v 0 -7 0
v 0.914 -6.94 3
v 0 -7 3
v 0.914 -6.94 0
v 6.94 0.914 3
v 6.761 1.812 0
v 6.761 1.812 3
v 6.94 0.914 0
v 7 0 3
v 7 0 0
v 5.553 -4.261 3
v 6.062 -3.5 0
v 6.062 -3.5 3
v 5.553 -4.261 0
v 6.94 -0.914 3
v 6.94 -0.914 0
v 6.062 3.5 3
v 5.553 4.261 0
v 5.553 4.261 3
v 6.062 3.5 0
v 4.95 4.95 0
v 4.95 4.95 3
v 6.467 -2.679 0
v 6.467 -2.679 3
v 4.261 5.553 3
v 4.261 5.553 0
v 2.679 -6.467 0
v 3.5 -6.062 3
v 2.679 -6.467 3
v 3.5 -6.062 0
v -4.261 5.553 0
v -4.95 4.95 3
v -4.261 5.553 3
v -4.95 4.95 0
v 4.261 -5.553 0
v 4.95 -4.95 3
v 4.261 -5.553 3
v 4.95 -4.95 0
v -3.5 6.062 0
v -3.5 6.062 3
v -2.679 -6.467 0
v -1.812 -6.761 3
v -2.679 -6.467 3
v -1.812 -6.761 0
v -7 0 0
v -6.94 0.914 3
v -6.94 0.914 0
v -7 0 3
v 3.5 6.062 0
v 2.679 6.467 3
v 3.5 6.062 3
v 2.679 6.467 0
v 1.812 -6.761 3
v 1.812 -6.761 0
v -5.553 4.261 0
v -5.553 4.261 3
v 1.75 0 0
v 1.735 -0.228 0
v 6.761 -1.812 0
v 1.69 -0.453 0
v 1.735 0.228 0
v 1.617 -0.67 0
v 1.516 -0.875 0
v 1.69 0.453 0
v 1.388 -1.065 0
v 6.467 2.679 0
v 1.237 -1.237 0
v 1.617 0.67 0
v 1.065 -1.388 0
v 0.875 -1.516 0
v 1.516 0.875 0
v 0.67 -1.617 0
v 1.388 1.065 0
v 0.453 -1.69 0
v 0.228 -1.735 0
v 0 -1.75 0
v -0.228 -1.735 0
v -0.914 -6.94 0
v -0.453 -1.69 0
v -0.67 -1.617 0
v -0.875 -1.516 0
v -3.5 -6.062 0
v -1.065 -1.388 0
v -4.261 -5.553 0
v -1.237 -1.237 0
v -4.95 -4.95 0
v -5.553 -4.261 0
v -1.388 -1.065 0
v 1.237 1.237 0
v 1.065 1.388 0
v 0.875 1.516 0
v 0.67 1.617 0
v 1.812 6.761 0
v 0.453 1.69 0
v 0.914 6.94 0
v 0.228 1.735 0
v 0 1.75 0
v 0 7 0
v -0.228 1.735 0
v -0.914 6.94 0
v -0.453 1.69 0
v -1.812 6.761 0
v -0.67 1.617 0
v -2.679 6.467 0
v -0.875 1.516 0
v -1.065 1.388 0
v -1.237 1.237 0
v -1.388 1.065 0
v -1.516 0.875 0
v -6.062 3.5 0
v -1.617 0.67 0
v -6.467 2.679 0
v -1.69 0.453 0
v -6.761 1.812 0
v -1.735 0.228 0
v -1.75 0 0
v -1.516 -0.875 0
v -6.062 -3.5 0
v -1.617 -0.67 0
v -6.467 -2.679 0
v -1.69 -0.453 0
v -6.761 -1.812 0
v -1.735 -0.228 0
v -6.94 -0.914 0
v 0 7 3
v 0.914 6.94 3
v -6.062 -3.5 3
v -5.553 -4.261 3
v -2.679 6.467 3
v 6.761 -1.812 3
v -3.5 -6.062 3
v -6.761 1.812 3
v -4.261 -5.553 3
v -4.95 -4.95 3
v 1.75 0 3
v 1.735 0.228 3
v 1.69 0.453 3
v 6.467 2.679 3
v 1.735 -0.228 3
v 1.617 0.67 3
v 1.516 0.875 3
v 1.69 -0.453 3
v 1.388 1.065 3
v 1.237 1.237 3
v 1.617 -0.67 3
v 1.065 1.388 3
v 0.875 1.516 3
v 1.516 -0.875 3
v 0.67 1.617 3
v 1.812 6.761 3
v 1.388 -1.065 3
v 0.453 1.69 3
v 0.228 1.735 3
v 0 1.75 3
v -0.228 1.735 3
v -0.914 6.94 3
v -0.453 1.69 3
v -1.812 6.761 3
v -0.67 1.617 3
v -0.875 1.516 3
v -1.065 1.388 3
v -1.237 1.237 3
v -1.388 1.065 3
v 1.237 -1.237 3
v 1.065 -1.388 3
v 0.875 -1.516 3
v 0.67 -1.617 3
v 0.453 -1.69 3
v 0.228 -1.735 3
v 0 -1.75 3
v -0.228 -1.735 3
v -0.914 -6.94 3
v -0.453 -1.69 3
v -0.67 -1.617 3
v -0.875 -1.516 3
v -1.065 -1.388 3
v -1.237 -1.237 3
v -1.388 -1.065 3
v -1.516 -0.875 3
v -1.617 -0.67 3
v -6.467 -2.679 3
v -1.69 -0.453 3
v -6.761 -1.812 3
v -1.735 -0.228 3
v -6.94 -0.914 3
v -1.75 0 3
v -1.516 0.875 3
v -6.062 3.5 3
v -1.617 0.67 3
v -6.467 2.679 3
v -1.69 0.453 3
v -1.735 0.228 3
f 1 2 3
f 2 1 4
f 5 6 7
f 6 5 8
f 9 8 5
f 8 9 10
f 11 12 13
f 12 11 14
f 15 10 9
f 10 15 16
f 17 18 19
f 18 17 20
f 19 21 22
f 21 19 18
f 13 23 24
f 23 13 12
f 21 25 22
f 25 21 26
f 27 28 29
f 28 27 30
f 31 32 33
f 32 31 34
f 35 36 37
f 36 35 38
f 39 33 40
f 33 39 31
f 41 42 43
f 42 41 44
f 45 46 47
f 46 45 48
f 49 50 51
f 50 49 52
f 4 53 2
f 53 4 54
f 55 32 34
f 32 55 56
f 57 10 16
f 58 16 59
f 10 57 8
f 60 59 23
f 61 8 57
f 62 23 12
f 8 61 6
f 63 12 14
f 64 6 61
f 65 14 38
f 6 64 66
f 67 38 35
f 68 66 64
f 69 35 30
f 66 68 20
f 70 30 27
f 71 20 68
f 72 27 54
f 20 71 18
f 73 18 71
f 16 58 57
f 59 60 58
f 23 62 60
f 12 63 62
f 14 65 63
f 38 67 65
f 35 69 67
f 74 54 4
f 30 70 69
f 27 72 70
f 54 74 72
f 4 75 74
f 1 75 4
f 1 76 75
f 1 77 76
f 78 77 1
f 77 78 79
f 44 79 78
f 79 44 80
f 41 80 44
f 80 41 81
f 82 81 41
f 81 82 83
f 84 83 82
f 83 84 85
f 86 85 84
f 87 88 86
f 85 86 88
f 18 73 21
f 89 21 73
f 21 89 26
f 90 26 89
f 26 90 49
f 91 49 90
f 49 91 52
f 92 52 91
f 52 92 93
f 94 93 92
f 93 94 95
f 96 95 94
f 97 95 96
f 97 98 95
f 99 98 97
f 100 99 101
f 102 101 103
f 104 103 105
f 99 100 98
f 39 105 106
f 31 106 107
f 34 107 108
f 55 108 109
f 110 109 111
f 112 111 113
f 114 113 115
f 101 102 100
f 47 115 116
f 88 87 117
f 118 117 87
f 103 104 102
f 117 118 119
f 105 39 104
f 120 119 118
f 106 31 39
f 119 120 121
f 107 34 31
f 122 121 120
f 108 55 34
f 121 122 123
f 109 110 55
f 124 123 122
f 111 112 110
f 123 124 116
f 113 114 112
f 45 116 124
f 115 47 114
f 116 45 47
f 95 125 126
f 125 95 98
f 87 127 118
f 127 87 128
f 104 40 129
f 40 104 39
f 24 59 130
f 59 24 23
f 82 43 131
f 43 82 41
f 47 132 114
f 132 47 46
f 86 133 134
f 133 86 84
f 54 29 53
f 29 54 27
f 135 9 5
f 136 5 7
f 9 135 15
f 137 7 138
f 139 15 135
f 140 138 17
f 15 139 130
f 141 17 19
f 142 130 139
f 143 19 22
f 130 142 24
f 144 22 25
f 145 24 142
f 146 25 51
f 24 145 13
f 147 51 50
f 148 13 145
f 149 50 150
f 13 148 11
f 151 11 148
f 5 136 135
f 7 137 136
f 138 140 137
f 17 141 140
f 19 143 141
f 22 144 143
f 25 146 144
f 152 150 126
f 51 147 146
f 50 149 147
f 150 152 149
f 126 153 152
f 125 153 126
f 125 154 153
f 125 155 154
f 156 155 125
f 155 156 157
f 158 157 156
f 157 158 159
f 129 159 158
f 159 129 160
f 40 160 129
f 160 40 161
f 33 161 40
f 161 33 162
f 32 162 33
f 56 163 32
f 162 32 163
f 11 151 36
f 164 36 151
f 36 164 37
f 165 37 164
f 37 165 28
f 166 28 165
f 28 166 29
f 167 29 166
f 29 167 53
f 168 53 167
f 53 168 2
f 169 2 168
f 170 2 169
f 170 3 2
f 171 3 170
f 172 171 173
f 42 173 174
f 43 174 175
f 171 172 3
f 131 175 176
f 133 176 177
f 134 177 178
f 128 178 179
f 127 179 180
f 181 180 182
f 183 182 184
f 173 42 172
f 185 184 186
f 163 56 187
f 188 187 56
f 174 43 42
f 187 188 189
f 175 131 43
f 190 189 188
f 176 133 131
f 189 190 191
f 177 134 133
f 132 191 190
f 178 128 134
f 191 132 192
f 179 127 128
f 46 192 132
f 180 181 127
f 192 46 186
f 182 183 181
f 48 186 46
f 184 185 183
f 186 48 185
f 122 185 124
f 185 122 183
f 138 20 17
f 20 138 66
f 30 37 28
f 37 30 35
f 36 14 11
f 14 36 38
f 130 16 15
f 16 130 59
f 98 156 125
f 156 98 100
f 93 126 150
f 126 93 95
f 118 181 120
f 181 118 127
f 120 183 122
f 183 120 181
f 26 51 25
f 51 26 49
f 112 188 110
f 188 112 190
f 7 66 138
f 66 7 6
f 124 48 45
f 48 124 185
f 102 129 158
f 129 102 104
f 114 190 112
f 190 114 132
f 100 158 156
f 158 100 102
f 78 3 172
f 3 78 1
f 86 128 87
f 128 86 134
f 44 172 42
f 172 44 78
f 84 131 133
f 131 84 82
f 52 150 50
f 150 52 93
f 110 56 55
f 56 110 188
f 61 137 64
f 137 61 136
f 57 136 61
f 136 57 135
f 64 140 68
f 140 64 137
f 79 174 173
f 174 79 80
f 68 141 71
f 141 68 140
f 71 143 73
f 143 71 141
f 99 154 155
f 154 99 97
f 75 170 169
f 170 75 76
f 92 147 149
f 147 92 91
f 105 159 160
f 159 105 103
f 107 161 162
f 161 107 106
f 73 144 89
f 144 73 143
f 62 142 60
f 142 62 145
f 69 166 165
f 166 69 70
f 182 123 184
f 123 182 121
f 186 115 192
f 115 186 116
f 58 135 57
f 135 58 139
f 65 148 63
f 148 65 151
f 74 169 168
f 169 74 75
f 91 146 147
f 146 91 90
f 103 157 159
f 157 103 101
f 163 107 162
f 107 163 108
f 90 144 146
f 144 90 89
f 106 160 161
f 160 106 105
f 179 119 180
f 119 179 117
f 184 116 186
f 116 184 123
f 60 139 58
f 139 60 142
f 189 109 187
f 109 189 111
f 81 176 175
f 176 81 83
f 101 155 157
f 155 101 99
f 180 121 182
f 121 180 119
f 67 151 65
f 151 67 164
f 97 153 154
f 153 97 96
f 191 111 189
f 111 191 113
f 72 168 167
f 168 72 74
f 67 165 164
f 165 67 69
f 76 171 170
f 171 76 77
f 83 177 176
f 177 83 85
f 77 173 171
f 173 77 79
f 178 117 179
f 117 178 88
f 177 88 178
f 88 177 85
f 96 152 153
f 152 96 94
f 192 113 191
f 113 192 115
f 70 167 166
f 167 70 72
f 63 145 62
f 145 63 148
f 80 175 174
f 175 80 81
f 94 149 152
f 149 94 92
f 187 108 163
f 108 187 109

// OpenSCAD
// Gen-J gap spacer PAD — print ×12 (6 per side); stacks to ~3 mm magnet-to-former
// Place on flange bolts under stator. Much smaller than full ring for one-plate.
pad_od = 14.0;
pad_id = 3.5;   // M3 clear
h = 3.0;
$fn = 48;
difference() {
    cylinder(d=pad_od, h=h);
    translate([0,0,-0.1]) cylinder(d=pad_id, h=h+0.2);
}
